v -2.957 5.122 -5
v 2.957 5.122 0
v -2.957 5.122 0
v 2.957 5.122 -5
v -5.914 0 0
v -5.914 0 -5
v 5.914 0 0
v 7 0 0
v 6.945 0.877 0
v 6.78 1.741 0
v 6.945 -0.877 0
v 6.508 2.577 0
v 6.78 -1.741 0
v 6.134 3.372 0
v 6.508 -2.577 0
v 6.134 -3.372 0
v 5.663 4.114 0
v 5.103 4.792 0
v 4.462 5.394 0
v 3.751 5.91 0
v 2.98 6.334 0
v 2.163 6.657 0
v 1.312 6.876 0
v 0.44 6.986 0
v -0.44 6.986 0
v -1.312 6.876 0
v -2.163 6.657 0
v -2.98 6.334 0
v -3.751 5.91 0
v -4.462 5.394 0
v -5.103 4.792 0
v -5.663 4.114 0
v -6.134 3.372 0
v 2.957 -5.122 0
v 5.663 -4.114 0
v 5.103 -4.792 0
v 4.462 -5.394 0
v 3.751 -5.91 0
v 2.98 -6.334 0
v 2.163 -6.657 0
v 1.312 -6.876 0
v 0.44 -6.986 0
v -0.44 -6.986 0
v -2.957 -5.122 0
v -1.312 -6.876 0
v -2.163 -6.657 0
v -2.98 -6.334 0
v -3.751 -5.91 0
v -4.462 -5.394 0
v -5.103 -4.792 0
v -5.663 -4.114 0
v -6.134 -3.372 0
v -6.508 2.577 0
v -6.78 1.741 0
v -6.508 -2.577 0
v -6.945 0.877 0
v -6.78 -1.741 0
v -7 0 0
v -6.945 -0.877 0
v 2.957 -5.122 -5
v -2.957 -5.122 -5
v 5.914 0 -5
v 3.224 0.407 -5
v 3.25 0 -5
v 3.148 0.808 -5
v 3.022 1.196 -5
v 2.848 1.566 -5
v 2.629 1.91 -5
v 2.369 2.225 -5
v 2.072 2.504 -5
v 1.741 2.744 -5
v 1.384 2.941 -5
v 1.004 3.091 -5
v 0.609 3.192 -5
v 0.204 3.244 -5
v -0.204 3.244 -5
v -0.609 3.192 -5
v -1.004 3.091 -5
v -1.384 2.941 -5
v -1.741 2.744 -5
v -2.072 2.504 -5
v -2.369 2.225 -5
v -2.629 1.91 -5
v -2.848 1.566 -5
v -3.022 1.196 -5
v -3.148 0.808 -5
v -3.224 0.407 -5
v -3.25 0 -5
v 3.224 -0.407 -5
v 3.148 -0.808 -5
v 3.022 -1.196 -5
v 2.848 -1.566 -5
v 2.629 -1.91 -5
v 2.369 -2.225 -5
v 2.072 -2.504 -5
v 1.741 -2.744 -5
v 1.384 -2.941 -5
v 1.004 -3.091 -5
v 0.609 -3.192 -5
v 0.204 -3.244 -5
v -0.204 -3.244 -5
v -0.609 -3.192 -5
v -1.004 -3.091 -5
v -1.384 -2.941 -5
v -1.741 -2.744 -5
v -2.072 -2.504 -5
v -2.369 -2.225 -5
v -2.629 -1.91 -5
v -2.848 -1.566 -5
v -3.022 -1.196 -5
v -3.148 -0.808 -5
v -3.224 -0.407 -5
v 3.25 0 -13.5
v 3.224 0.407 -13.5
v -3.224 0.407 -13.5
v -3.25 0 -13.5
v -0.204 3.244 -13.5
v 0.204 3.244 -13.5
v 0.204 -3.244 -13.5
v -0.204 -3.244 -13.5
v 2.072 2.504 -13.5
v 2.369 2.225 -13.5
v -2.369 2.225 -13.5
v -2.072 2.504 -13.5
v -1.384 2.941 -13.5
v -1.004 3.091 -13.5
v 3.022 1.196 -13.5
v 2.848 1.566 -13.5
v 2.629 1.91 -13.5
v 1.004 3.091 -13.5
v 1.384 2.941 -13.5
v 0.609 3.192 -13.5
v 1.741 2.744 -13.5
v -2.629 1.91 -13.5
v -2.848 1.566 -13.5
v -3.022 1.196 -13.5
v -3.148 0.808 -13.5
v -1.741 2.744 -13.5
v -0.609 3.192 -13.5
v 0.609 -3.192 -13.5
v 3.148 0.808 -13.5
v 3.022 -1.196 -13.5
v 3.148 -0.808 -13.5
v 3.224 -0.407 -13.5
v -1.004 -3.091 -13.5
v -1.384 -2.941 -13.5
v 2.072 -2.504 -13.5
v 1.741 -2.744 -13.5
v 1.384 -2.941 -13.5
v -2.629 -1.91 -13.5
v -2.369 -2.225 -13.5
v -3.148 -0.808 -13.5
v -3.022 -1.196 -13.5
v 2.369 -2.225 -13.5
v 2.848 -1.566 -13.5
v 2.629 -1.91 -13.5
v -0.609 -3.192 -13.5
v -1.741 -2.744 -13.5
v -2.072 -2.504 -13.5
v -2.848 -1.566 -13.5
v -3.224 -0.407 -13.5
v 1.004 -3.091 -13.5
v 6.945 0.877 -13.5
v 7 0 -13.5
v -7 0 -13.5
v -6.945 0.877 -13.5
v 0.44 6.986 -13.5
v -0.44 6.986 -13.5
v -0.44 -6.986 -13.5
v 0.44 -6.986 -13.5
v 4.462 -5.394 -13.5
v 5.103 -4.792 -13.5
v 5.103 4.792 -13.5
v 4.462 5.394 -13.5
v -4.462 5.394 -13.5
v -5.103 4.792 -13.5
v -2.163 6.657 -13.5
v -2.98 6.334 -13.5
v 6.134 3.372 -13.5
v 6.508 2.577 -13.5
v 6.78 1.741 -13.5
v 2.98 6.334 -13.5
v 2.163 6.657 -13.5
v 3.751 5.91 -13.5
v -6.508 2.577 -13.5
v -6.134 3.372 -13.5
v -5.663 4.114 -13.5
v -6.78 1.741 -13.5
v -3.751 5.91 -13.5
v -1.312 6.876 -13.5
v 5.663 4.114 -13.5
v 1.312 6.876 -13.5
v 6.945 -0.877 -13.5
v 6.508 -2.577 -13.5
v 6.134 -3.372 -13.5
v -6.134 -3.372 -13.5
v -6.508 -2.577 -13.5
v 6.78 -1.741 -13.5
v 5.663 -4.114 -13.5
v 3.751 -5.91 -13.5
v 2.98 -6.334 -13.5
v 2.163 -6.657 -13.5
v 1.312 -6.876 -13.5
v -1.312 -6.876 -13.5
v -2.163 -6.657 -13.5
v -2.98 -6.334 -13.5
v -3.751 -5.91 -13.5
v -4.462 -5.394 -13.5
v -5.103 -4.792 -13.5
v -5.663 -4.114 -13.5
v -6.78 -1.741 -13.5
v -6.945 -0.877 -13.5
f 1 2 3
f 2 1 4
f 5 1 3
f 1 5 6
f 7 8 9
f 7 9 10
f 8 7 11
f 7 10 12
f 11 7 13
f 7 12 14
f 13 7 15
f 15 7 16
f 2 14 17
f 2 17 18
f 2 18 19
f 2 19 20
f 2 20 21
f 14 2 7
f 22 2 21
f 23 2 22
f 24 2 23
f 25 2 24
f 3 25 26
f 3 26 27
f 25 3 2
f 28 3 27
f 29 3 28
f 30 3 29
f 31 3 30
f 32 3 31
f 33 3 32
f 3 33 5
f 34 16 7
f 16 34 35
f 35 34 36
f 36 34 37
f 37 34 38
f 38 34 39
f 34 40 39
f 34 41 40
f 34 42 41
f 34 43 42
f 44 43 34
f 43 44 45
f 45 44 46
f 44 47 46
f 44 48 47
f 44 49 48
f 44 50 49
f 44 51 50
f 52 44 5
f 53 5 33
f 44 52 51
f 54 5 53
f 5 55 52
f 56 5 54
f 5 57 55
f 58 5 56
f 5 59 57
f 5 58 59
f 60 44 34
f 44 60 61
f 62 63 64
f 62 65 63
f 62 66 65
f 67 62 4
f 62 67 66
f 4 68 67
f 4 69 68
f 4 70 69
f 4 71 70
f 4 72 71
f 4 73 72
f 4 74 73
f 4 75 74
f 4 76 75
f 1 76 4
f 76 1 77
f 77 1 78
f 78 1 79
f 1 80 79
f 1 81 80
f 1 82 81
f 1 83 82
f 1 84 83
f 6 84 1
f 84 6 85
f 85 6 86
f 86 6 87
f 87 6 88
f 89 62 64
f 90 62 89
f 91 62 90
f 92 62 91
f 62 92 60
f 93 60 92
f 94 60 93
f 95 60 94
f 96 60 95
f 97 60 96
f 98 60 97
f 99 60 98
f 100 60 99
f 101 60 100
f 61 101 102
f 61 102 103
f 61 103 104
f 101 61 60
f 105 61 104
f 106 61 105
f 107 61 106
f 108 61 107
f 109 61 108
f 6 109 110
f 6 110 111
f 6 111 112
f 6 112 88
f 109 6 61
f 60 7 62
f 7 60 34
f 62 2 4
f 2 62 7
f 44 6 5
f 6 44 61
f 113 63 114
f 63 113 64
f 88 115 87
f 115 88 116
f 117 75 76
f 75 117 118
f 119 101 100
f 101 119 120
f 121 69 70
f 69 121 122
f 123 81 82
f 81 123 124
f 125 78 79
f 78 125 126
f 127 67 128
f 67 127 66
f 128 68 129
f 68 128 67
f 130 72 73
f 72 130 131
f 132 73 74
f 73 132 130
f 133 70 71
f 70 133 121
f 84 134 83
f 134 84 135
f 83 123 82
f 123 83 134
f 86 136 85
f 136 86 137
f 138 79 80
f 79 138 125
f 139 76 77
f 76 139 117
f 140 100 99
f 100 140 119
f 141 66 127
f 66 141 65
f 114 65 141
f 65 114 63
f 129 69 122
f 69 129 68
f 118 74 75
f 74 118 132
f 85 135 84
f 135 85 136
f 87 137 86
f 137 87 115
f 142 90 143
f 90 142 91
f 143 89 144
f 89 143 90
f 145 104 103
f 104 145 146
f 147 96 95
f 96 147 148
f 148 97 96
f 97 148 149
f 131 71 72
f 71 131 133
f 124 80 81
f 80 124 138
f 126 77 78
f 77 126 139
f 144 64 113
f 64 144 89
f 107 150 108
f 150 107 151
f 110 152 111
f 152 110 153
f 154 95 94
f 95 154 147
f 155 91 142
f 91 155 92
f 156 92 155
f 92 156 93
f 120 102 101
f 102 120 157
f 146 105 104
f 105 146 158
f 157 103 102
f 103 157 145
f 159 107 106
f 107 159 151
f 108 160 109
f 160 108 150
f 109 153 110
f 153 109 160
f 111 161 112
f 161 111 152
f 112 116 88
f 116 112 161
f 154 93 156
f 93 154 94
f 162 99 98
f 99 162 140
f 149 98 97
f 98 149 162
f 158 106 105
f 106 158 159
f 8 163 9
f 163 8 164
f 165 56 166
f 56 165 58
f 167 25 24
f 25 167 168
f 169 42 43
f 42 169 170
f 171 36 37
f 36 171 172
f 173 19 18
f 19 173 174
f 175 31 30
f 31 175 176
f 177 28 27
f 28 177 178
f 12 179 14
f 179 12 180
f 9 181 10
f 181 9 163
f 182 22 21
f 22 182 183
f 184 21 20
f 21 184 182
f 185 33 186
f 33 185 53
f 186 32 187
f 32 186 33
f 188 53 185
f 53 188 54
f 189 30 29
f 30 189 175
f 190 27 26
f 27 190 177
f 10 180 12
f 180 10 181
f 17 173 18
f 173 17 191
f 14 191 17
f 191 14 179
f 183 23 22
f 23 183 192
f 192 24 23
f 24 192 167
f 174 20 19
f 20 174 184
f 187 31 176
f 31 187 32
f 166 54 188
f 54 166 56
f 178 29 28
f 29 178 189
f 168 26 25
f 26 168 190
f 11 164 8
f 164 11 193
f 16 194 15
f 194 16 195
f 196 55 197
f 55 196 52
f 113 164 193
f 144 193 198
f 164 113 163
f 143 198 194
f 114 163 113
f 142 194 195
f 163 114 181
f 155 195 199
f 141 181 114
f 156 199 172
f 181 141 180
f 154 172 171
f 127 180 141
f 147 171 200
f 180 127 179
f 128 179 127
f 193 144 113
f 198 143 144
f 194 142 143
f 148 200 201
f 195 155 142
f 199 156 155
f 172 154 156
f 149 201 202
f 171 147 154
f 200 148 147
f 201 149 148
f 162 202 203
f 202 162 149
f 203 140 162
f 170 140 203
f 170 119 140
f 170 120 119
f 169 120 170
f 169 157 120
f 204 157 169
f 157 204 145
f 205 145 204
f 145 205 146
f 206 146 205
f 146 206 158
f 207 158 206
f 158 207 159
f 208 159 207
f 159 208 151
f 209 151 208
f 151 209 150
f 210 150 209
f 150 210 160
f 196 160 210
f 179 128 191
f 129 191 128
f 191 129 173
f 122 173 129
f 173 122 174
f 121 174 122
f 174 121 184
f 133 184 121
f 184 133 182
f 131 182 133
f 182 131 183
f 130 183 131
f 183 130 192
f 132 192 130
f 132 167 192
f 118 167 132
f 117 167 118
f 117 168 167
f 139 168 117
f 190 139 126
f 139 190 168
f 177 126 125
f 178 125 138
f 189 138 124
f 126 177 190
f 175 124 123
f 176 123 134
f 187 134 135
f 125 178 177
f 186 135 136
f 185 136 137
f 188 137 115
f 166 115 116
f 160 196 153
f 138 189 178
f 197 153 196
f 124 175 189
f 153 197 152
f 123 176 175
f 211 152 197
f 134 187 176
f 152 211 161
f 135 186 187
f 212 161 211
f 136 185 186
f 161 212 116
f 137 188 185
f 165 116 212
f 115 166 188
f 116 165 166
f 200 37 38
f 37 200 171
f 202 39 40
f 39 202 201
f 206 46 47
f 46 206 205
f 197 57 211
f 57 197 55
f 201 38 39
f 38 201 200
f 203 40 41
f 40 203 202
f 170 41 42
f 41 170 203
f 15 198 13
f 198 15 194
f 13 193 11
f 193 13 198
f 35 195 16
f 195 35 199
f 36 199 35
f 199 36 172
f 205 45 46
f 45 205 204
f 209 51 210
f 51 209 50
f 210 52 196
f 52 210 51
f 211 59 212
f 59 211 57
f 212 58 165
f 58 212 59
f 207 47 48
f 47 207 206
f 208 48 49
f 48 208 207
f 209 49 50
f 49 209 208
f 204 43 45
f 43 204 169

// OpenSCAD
$fn = 50;


difference() {
	union() {
		translate(v = [0, 0, -13.5000000000]) {
			cylinder(h = 13.5000000000, r = 7.0000000000);
		}
	}
	union() {
		translate(v = [0, 0, 0]) {
			rotate(a = [0, 0, 0]) {
				difference() {
					union() {
						translate(v = [0, 0, -5]) {
							linear_extrude(height = 5) {
								polygon(points = [[5.9142500000, 0.0000000000], [2.9571250000, 5.1218907443], [-2.9571250000, 5.1218907443], [-5.9142500000, 0.0000000000], [-2.9571250000, -5.1218907443], [2.9571250000, -5.1218907443]]);
							}
						}
					}
					union();
				}
			}
		}
		#translate(v = [0, 0, -100.0000000000]) {
			cylinder(h = 200, r = 3.2500000000);
		}
	}
}
